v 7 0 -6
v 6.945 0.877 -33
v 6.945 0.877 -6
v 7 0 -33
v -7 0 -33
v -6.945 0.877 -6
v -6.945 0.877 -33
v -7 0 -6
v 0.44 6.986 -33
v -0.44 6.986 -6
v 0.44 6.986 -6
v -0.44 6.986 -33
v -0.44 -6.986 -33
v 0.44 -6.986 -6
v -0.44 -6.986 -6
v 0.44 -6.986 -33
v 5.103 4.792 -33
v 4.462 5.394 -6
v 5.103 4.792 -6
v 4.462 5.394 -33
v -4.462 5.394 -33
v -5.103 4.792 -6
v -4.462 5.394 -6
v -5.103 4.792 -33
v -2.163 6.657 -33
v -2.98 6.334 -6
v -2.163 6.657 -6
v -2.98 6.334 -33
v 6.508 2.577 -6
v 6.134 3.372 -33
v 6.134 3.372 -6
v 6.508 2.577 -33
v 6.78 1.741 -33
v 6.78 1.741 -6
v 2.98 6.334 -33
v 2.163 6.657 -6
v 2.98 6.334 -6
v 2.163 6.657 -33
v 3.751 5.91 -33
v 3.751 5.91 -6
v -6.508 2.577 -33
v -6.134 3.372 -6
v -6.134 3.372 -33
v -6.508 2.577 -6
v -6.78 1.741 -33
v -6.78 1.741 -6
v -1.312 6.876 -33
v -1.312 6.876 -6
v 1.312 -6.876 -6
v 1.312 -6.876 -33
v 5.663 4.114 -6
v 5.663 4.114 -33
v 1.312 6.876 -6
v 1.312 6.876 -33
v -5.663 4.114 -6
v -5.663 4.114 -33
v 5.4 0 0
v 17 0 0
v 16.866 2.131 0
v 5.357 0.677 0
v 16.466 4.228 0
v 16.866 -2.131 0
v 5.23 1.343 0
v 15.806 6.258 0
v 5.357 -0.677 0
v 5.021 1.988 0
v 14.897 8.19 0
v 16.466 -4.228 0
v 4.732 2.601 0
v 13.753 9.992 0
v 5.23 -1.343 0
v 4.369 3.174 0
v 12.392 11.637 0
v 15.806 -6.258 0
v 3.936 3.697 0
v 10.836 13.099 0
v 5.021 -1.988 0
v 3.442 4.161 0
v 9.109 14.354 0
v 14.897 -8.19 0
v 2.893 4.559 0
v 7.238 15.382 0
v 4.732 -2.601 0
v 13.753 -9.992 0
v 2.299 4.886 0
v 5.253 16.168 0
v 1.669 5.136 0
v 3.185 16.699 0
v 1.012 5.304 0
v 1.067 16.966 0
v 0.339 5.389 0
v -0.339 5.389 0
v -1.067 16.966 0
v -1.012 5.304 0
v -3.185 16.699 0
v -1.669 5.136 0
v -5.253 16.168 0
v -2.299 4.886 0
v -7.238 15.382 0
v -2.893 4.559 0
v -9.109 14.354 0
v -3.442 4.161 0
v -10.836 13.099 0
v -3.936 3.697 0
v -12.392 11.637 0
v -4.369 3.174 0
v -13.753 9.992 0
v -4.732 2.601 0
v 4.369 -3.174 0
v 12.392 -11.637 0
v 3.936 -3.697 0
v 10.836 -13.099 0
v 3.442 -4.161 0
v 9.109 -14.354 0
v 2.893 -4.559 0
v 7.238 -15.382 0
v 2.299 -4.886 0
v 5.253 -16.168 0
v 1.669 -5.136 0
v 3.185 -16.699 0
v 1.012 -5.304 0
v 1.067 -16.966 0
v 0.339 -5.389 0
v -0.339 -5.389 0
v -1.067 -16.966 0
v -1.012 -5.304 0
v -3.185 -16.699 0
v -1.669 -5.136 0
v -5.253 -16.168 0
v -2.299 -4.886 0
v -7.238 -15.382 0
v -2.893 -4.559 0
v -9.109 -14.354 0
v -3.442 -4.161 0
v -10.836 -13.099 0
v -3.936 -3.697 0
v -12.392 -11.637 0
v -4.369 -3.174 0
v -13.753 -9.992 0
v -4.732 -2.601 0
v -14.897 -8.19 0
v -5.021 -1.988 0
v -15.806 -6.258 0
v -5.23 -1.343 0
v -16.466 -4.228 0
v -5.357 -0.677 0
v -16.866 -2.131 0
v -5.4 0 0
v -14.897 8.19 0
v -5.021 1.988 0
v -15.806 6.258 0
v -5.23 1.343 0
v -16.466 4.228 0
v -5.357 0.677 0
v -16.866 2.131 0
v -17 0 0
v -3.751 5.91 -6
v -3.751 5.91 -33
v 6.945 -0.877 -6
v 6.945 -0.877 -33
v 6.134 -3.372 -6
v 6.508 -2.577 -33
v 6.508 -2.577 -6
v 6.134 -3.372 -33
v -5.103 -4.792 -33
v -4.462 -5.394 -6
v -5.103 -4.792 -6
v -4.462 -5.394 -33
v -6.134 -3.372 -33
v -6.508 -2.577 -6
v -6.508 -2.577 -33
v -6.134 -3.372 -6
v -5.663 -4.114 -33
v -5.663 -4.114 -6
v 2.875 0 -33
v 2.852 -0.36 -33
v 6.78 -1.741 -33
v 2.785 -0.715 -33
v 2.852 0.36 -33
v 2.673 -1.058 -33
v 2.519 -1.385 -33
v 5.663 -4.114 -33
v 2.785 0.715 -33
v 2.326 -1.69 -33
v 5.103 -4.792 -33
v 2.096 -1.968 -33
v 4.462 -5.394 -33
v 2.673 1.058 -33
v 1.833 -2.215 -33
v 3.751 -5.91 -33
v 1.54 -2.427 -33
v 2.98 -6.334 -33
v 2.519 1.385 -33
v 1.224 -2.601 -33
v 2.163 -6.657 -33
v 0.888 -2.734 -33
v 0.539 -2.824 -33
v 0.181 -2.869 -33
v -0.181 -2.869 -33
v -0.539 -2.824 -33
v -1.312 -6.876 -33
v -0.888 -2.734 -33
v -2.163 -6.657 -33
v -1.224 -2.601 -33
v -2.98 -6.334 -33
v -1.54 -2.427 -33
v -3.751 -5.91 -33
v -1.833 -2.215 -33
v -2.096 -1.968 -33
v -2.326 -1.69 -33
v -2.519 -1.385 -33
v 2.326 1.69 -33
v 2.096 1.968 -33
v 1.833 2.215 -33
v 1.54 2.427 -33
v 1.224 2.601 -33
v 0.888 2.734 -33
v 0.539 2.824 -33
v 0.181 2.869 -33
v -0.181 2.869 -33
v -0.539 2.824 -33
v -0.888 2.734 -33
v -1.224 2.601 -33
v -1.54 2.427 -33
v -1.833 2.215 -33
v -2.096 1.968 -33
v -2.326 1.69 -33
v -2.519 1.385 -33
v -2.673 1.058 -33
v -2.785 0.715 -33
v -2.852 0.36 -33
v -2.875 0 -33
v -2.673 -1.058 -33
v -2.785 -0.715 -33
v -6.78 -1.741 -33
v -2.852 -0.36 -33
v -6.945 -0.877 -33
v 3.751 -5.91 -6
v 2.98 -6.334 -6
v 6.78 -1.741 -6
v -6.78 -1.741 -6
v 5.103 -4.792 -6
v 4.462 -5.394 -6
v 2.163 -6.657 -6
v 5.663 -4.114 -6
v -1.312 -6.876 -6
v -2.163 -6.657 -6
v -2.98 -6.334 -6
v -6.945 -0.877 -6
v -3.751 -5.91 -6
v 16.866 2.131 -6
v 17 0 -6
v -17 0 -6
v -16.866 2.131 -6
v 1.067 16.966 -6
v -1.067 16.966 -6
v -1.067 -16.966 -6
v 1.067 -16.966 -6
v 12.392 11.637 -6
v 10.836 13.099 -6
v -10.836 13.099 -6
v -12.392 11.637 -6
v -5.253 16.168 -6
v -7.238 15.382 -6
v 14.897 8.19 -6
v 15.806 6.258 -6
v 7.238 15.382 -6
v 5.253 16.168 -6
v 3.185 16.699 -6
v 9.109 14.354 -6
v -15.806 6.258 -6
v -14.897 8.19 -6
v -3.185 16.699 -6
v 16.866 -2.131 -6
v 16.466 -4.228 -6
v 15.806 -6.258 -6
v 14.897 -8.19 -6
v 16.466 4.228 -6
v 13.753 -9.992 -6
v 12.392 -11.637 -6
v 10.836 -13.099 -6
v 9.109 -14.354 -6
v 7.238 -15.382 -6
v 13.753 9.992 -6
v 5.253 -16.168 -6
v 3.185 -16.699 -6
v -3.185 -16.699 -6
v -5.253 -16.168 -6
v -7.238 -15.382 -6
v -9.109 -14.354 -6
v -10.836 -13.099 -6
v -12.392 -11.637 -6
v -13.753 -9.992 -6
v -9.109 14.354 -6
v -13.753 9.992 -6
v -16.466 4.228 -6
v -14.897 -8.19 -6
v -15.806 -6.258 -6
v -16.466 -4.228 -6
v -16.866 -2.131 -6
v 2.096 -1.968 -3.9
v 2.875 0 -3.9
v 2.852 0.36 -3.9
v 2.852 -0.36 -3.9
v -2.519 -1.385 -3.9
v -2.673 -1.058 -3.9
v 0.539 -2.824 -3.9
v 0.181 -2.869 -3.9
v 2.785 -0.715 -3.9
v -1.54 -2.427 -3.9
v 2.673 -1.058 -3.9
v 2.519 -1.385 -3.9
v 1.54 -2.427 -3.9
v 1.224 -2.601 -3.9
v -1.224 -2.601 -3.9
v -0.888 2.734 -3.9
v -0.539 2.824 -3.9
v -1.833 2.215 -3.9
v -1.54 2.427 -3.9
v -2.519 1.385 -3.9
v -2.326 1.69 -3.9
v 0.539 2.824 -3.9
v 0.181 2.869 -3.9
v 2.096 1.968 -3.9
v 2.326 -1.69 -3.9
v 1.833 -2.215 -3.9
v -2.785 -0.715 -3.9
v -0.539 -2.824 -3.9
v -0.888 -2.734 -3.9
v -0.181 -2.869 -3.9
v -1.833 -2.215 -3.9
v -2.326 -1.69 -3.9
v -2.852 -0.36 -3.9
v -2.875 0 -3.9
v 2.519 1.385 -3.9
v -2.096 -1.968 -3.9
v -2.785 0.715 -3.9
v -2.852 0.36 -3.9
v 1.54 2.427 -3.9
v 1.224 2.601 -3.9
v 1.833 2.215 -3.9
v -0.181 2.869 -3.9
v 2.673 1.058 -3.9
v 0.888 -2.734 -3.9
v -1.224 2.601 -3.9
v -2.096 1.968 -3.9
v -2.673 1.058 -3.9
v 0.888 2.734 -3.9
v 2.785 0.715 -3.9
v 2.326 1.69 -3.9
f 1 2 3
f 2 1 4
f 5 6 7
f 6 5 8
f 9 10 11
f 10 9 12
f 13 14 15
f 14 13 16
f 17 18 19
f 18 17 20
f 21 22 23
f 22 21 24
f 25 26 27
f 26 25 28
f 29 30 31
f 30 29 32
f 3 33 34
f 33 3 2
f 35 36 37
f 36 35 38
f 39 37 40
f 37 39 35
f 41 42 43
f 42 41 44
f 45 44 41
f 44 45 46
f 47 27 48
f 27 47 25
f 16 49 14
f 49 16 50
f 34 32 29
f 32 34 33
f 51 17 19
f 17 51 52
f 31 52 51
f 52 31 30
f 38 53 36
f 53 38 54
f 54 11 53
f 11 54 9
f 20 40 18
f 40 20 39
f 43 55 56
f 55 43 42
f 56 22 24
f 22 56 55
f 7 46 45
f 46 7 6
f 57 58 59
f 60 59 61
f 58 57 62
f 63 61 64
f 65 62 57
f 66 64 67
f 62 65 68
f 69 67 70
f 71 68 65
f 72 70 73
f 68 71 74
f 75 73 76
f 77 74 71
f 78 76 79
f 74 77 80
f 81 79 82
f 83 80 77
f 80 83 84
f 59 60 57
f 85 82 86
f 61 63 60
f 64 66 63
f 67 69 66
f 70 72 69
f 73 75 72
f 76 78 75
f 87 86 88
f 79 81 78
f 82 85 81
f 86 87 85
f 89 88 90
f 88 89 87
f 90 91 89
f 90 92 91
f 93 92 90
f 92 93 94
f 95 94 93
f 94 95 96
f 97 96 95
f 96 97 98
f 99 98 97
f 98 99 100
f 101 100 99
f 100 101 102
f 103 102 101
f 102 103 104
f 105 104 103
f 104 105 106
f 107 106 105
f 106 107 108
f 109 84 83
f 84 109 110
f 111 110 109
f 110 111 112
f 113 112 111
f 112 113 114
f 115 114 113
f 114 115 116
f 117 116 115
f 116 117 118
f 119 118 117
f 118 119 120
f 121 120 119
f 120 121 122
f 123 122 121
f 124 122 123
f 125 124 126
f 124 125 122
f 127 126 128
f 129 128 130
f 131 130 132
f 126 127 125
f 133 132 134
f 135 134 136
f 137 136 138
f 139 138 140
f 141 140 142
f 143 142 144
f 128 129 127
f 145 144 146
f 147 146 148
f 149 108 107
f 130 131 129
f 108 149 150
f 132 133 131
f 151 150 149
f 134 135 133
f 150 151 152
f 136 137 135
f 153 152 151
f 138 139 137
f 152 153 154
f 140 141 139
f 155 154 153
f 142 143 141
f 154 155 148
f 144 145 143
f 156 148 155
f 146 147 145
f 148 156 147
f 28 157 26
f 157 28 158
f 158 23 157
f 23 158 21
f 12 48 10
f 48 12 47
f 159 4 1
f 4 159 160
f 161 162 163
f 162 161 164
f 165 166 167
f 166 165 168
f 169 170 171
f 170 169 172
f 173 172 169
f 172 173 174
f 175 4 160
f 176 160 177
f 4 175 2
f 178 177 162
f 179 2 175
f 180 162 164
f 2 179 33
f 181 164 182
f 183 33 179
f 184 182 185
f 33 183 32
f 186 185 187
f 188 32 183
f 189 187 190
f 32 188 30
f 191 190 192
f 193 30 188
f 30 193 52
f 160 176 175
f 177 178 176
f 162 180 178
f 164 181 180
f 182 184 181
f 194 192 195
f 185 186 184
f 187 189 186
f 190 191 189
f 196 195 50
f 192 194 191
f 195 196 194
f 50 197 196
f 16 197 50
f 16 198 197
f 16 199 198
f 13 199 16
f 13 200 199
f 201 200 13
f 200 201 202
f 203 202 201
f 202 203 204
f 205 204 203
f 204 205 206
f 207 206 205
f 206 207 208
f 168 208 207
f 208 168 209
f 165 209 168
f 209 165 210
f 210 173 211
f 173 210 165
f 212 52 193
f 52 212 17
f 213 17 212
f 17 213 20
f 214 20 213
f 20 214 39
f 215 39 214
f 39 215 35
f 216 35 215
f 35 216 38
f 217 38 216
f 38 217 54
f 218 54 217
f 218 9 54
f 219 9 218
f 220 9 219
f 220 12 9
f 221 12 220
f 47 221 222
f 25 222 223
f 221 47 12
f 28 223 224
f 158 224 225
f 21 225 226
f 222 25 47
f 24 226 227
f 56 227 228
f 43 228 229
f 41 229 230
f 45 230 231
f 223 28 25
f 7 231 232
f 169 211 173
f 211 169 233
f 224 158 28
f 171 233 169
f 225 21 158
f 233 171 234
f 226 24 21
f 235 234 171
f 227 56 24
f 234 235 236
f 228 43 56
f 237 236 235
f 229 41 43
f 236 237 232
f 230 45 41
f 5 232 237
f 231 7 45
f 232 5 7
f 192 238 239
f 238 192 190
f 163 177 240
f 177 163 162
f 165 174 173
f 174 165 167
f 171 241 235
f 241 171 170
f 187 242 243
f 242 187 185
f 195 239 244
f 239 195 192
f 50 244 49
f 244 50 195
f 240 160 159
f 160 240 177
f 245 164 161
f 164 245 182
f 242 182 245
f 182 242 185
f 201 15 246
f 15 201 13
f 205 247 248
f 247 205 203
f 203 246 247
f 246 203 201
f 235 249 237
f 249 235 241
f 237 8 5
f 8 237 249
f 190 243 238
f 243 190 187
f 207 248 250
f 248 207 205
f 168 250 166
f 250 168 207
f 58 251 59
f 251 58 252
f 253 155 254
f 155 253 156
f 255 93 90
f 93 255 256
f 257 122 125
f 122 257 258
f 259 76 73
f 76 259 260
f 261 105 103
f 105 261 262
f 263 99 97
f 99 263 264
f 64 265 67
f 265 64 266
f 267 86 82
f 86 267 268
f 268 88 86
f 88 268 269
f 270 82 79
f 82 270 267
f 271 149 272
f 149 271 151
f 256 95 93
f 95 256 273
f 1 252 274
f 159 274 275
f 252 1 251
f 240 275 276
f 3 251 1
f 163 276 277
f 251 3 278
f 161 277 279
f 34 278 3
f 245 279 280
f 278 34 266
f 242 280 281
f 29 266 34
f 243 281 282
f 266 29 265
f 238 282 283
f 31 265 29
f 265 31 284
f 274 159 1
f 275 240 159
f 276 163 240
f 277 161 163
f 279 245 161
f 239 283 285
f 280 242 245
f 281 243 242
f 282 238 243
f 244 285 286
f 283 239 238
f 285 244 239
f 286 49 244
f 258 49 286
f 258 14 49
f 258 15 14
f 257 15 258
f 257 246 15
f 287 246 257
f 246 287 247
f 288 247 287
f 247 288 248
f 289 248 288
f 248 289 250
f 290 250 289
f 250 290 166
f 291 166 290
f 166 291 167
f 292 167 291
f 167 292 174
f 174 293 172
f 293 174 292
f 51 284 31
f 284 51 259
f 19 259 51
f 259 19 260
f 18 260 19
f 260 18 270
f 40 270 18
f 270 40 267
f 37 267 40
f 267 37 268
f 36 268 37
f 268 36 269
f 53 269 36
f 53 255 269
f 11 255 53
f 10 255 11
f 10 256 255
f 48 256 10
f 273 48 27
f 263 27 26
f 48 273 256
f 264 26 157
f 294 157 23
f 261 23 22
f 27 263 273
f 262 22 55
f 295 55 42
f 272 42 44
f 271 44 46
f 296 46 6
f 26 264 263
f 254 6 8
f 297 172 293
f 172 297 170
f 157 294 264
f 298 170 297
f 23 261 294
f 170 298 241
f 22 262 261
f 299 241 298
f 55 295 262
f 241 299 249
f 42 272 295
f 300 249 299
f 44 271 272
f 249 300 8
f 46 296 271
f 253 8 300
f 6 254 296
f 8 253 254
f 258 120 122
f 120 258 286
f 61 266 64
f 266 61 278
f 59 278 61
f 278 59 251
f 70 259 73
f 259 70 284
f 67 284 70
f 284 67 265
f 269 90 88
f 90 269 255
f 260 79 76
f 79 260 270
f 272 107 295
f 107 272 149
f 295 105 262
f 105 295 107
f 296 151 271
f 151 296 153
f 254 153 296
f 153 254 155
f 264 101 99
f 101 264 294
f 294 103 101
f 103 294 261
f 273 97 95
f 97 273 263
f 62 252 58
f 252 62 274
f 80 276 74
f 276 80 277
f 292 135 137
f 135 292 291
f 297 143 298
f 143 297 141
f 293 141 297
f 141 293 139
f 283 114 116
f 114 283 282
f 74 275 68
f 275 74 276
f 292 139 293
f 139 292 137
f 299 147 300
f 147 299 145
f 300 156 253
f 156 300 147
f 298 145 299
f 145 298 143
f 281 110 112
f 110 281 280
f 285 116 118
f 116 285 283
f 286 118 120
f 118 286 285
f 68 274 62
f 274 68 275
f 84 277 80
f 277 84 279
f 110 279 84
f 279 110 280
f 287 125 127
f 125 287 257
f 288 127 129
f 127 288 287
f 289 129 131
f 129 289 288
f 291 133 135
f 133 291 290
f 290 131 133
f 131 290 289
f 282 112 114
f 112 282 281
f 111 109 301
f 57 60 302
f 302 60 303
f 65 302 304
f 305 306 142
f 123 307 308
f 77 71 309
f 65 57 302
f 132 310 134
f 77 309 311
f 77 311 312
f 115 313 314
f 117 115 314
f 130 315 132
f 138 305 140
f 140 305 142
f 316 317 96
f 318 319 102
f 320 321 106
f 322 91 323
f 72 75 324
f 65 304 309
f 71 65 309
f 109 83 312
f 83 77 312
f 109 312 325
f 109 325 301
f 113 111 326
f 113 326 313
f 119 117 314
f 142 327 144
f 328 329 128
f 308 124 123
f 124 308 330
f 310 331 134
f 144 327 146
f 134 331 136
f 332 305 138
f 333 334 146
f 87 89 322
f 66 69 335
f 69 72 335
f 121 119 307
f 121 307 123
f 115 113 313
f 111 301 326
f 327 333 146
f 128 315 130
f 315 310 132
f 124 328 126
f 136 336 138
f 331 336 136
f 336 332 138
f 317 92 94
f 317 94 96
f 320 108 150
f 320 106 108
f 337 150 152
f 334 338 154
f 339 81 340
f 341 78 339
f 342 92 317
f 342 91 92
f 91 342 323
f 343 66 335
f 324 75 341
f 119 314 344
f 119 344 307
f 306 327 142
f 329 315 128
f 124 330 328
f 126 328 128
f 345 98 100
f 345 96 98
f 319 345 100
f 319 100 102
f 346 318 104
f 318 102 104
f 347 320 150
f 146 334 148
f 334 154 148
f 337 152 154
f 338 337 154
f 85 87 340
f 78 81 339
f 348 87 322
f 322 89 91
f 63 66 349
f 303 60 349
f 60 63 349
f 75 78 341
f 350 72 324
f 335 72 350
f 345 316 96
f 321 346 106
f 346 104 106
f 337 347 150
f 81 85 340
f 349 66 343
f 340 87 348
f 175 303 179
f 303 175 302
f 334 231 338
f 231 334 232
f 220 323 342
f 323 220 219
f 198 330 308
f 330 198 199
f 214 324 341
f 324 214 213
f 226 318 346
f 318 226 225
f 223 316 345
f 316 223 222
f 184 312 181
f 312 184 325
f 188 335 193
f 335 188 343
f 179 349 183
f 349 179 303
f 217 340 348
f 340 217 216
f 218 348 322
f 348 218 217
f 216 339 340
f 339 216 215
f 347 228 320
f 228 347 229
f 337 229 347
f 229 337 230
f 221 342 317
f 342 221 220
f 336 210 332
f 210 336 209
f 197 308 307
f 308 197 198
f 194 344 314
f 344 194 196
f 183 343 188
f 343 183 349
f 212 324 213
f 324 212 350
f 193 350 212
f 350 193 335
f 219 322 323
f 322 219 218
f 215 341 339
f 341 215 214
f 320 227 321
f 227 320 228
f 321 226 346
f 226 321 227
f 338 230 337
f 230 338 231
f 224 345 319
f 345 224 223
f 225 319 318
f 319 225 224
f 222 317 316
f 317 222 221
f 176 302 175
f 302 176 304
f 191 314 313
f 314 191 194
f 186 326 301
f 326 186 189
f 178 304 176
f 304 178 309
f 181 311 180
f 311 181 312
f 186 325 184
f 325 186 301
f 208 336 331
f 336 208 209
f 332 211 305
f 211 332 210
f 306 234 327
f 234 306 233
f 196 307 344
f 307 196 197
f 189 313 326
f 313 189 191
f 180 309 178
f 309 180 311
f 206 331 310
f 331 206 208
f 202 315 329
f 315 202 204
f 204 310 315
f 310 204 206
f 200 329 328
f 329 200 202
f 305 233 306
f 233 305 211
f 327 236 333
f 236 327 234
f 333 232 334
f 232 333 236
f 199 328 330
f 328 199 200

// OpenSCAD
$fn = 50;


difference() {
	union() {
		translate(v = [0, 0, -33.0000000000]) {
			cylinder(h = 33, r = 7.0000000000);
		}
		translate(v = [0, 0, -6.0000000000]) {
			cylinder(h = 6, r = 17.0000000000);
		}
	}
	union() {
		translate(v = [0, 0, 0]) {
			rotate(a = [0, 0, 0]) {
				difference() {
					union() {
						#translate(v = [0, 0, -33.0000000000]) {
							cylinder(h = 33, r = 2.6000000000);
						}
						#translate(v = [0, 0, -3.9000000000]) {
							cylinder(h = 3.9000000000, r1 = 2.8750000000, r2 = 5.4000000000);
						}
						#translate(v = [0, 0, -33.0000000000]) {
							cylinder(h = 33, r = 2.8750000000);
						}
						#translate(v = [0, 0, -33.0000000000]) {
							cylinder(h = 33, r = 2.6000000000);
						}
					}
					union();
				}
			}
		}
	}
}
